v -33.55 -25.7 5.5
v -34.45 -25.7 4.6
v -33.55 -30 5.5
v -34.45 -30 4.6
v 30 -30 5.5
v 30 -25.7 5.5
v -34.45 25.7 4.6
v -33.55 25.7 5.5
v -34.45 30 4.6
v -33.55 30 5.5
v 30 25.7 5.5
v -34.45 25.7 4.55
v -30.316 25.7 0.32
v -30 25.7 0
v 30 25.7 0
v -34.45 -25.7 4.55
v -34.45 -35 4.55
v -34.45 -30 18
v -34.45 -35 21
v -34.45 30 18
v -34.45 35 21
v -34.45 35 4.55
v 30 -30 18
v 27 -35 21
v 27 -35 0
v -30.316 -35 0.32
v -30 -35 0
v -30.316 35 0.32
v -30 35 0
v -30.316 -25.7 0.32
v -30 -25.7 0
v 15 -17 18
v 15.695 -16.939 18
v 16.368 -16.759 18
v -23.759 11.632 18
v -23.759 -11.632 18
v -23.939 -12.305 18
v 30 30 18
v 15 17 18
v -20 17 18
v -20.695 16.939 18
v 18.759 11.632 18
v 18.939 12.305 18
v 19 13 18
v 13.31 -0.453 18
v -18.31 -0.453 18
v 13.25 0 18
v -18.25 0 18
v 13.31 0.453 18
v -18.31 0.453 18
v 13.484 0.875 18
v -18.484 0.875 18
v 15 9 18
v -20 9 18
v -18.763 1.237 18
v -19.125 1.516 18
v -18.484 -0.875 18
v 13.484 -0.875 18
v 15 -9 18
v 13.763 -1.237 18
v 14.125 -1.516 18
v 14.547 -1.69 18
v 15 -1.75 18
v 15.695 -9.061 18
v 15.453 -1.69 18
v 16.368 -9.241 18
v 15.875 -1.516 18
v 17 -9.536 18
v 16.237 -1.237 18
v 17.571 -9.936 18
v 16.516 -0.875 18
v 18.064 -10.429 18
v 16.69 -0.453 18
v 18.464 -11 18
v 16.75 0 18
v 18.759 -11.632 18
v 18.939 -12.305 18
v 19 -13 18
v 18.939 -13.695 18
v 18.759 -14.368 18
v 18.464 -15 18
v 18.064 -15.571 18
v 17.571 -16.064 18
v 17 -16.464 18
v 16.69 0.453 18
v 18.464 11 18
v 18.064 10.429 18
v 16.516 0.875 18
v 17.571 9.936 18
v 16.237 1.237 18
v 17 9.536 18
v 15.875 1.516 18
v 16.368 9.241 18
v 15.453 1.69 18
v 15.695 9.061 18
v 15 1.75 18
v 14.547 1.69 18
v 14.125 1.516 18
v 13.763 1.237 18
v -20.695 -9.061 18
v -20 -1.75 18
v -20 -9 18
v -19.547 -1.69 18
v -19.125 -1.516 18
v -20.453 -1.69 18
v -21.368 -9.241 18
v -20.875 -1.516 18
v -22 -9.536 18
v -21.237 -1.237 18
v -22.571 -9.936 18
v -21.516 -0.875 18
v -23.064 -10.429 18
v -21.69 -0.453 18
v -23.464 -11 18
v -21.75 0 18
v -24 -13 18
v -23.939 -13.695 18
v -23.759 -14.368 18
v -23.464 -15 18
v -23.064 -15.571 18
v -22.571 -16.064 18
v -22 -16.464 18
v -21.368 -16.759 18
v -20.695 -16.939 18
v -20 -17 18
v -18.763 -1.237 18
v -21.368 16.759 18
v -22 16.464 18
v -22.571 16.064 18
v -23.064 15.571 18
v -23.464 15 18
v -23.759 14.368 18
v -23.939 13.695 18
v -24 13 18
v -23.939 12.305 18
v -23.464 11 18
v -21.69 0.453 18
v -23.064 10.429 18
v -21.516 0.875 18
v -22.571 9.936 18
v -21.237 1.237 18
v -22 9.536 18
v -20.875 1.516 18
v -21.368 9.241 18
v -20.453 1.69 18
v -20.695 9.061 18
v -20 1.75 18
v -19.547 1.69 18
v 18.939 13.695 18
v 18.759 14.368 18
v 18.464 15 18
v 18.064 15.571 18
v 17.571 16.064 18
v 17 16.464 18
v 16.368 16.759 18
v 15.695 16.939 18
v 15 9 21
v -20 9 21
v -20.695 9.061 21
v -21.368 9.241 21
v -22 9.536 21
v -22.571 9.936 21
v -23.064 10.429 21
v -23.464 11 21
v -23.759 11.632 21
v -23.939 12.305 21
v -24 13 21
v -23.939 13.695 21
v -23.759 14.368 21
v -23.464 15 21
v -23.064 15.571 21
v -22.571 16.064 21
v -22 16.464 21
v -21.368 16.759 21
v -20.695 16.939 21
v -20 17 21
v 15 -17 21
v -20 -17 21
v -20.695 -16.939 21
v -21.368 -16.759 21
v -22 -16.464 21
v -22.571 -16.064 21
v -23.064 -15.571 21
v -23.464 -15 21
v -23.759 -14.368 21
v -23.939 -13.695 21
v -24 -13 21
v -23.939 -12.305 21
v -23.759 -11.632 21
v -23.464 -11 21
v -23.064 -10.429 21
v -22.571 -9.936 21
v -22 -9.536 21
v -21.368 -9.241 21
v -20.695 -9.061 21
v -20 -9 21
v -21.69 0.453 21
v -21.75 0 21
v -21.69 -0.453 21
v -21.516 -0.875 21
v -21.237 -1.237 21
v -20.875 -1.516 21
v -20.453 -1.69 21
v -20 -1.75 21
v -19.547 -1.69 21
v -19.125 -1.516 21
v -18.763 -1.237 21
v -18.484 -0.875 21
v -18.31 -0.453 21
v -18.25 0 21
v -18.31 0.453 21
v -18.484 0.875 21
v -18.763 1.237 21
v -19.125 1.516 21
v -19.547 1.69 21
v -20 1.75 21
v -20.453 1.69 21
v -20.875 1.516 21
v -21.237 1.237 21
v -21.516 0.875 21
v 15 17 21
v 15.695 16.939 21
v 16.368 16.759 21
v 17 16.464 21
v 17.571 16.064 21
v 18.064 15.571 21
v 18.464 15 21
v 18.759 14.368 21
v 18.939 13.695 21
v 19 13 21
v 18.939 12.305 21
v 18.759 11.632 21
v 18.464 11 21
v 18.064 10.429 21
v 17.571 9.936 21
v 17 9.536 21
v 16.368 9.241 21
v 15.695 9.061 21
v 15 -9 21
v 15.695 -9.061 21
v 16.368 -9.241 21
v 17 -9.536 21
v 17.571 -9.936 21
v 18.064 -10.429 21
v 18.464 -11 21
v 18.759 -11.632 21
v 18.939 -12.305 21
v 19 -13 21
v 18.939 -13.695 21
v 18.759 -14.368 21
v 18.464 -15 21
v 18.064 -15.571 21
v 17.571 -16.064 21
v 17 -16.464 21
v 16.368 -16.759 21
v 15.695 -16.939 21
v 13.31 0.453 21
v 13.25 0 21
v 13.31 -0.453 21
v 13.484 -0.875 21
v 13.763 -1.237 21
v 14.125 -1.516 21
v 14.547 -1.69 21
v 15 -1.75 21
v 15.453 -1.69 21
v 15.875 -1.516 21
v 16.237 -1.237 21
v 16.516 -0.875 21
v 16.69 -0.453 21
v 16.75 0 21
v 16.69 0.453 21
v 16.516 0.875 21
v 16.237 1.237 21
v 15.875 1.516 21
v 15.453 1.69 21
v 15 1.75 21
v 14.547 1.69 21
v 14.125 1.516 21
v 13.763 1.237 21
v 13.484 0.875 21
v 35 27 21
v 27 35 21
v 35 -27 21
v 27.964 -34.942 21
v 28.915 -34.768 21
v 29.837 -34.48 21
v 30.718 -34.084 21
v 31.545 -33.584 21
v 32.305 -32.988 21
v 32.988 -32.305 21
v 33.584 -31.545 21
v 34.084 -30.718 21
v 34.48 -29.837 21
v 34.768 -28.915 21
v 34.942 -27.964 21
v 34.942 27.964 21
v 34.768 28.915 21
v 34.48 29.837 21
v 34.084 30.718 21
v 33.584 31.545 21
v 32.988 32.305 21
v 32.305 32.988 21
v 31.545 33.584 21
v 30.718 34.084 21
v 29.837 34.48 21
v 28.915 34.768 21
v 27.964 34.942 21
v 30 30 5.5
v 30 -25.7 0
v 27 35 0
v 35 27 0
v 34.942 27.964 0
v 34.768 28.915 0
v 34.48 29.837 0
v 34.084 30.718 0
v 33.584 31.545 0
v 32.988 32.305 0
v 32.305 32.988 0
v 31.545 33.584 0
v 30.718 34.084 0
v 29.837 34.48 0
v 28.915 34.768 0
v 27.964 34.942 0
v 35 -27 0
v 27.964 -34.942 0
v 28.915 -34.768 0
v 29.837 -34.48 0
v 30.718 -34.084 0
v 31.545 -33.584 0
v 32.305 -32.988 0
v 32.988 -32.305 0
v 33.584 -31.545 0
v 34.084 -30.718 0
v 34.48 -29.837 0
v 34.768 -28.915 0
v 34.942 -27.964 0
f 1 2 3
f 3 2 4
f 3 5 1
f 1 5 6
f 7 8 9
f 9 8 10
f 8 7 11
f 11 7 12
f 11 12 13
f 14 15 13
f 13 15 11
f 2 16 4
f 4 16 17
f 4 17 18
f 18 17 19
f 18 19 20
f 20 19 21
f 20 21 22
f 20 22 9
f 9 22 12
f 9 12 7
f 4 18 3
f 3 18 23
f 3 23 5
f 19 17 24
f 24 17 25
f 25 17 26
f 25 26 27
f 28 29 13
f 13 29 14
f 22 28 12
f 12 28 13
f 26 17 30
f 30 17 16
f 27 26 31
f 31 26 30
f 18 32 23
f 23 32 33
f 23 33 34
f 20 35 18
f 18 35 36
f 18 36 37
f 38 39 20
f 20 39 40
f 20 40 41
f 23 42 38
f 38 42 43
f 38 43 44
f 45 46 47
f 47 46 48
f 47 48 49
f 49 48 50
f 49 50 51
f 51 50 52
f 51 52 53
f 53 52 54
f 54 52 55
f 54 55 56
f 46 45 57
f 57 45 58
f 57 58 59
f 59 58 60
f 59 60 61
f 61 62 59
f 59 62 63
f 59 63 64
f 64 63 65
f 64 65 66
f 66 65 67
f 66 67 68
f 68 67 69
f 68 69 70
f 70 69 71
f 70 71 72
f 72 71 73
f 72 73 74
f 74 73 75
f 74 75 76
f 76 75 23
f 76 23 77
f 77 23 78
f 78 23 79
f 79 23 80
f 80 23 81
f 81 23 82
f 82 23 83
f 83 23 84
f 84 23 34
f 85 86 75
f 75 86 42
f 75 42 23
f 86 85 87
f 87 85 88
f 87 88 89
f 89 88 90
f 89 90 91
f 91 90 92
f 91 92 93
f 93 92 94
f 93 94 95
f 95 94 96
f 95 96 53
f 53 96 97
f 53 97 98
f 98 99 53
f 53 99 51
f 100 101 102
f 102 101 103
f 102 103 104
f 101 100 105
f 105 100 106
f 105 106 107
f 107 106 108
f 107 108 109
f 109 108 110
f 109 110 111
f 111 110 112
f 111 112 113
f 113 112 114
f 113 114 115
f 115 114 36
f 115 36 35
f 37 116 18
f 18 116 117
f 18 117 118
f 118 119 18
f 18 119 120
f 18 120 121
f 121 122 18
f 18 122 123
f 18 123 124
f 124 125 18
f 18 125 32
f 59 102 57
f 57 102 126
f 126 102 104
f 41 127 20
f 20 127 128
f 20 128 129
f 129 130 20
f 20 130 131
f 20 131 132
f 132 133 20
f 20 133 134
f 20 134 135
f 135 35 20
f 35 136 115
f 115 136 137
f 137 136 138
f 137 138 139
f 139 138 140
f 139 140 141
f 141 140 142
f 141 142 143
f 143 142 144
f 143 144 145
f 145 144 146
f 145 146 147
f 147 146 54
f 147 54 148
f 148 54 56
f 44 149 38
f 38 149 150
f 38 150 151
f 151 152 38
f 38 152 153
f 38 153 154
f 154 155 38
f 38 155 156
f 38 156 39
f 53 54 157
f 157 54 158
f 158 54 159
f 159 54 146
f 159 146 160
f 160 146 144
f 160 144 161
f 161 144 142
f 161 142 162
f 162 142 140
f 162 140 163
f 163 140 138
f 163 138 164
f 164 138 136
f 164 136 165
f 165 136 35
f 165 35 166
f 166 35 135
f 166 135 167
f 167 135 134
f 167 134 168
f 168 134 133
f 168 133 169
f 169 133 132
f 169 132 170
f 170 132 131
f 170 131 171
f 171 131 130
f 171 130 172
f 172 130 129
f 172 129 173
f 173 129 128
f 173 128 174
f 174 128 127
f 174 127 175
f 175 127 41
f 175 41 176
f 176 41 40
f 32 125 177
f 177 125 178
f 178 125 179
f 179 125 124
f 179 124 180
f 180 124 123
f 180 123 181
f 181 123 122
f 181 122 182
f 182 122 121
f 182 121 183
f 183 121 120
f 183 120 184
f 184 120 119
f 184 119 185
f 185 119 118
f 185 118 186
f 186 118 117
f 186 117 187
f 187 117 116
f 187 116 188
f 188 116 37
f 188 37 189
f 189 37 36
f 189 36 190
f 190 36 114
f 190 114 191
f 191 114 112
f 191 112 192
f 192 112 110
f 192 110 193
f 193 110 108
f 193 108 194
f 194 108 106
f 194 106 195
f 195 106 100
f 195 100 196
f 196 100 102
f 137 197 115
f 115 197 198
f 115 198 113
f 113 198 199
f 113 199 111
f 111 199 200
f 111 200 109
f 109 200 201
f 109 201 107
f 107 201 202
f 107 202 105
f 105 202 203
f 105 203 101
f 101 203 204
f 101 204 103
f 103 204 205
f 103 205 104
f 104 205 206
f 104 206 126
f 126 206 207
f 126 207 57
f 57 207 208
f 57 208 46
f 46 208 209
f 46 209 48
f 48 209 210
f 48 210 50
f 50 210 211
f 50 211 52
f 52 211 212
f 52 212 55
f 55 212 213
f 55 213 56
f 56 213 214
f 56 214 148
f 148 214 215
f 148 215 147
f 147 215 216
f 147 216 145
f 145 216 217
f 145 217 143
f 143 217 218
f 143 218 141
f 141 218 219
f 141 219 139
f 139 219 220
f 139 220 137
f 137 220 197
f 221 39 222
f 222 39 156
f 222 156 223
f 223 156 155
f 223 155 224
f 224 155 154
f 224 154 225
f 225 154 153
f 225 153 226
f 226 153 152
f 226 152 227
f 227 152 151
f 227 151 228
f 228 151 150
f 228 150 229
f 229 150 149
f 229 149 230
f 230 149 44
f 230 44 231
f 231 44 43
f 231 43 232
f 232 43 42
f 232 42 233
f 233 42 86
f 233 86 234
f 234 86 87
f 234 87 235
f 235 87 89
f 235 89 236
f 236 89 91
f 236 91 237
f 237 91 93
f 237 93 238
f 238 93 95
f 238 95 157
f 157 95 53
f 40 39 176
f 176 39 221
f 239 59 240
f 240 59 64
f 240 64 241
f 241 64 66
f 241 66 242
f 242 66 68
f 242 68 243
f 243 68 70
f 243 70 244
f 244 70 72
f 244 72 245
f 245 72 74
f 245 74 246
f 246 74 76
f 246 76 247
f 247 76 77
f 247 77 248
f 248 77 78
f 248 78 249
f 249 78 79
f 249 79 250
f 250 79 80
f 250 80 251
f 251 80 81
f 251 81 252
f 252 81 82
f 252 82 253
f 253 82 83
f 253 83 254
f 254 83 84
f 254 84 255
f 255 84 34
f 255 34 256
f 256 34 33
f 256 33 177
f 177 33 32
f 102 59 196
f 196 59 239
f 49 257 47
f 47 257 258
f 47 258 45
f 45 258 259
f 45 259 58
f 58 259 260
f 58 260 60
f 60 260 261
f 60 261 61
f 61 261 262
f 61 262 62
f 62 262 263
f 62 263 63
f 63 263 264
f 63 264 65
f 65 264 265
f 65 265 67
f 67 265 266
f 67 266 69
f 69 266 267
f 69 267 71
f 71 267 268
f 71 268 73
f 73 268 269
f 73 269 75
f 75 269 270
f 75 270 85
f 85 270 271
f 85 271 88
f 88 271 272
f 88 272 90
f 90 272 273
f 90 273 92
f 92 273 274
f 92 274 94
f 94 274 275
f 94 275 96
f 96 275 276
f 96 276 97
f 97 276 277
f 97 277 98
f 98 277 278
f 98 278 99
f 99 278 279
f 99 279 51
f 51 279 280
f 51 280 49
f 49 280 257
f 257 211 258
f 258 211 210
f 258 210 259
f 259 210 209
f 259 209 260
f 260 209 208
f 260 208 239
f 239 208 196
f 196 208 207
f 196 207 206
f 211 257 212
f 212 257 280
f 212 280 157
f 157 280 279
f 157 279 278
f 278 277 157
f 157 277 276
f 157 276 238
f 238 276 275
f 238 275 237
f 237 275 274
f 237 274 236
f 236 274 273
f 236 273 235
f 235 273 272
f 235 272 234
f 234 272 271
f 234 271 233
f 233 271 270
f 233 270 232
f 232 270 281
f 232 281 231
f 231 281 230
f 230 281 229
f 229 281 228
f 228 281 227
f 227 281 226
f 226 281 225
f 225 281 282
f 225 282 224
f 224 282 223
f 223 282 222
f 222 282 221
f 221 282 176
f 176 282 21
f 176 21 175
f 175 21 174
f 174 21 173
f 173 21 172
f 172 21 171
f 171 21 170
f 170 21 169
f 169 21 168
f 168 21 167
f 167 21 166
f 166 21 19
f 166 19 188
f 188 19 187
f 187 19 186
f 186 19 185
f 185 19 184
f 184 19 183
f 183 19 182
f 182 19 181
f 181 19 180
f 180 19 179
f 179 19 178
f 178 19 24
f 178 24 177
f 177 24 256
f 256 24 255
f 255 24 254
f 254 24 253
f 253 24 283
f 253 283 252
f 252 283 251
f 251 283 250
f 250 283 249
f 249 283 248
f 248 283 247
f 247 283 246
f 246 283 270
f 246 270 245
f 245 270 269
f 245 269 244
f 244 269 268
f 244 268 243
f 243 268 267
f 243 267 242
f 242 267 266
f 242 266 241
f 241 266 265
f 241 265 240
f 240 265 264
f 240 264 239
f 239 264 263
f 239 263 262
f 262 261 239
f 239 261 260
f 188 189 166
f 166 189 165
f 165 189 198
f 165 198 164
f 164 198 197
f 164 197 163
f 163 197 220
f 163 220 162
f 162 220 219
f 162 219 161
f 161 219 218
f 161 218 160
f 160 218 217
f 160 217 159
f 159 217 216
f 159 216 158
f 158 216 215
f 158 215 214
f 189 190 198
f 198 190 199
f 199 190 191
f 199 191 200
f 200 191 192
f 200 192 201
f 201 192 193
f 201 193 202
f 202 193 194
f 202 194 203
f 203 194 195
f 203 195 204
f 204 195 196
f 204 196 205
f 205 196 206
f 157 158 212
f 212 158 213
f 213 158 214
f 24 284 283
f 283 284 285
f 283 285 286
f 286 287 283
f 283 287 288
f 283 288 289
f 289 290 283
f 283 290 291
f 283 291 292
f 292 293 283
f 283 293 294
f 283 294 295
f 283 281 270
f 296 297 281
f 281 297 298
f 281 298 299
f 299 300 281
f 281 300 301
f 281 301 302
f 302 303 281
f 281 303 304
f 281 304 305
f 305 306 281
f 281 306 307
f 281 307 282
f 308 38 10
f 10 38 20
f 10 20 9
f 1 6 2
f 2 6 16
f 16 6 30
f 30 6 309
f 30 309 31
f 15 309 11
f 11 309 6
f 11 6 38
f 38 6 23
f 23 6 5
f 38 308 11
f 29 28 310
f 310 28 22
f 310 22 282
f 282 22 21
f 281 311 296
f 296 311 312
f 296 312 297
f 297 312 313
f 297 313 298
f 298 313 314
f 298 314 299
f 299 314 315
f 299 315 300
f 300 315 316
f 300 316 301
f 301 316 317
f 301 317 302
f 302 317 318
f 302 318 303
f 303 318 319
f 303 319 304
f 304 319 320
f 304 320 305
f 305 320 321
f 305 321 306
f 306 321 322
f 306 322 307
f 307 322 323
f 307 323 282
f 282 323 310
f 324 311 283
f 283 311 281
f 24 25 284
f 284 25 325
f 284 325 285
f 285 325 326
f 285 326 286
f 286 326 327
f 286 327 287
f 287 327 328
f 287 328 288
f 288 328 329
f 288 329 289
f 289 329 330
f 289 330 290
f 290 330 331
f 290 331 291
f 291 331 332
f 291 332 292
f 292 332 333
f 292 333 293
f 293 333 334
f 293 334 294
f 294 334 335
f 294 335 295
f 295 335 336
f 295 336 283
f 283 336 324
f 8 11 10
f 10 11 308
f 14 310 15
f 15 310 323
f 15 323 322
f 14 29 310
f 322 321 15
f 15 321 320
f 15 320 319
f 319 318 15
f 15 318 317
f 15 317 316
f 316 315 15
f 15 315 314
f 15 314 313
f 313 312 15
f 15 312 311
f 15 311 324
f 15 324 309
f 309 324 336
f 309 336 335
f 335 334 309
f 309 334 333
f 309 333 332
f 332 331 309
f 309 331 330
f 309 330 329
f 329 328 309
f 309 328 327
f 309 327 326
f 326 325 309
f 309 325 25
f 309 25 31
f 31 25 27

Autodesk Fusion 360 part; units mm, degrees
sketch "Sketch1" plane through (0, 0, 0) normal (0, 0, 1) x (1, 0, 0)
  line L0 (30, 25.7) -> (-30, 25.7)
  line L1 (-30, 25.7) -> (-30, -25.7)
  line L2 (-30, -25.7) -> (30, -25.7)
  line L3 (30, -25.7) -> (30, 25.7)
  line L4 (30, -30) -> (-30, -30)
  line L5 (-30, -35) -> (-30, 35)
  line L6 (-30, 30) -> (30, 30)
  line L7 (30, 30) -> (30, -30)
  line L8 (-30, 35) -> (27, 35)
  line L9 (35, 27) -> (35, -27)
  line L10 (-30, -35) -> (27, -35)
  arc A0 (35, 27) -> (27, 35) centre (27, 27) ccw
  arc A1 (27, -35) -> (35, -27) centre (27, -27) ccw
  circle A2 centre (-20, 0) radius 1.75
  circle A3 centre (15, 0) radius 1.75
  line L11 (-20, 9) -> (15, 9)
  arc A4 (15, 9) -> (15, 17) centre (15, 13) ccw
  line L12 (15, 17) -> (-20, 17)
  arc A5 (-20, 17) -> (-20, 9) centre (-20, 13) ccw
  line L13 (-20, 13) -> (15, 13) construction
  line L14 (1.75, 0) -> (22.5, 0)
  line L15 (-20, -9) -> (15, -9)
  arc A6 (-20, -9) -> (-20, -17) centre (-20, -13) ccw
  line L16 (15, -17) -> (-20, -17)
  arc A7 (15, -17) -> (15, -9) centre (15, -13) ccw
  dimension "d1" = 60
  dimension "d2" = 51.4
  dimension "d3" = 60
  dimension "d6" = 8
  dimension "d15" = 3.5
  dimension "d16" = 3.5
extrude "Extrude1" add sketch "Sketch1" along normal blind 5.5 contours L3 L4 L5 L6 L7 L8 L9 L10 A0 A1 | L0 L5 L6 L7 | L2 L4 L5 L7
extrude "Extrude2" add sketch "Sketch1" along normal blind 18 contours L3 L4 L5 L6 L7 L8 L9 L10 A0 A1
extrude "Extrude3" add sketch "Sketch1" along normal blind 21 and the other way blind -18
sketch "Sketch2" plane through (0, -35, 0) normal (0, -1, 0) x (1, 0, 0)
  line L0 (-30, 0) -> (27, 0)
  line L1 (27, 0) -> (27, 21)
  line L2 (27, 21) -> (-30, 21)
  line L3 (-30, 21) -> (-30, 0)
  line L4 (-30, 0) -> (-34.45, 0)
  line L5 (-34.45, 0) -> (-34.45, 4.55)
  line L6 (-30, 0) -> (-30.316, 0.3196)
  line L7 (-30.316, 0.3196) -> (-34.45, 4.55)
  line L8 (-34.45, 4.55) -> (-34.45, 21)
  line L9 (-34.45, 21) -> (-30, 21)
  line L10 (-30, 0) -> (-30, 5.5)
  line L11 (-30, 5.5) -> (-34.45, 5.5)
  dimension "d17" = 4.45
  dimension "d18" = 4.55
  dimension "d25" = 5.5
extrude "Extrude4" add sketch "Sketch2" against normal blind 5 contours L3 L6 L7 L8 L10 L11 | L3 L8 L9 L11
extrude "Extrude5" add sketch "Sketch2" along normal blind -70 and the other way blind 65 contours L3 L6 L7 L8 L10 L11 | L3 L8 L9 L11
extrude "Extrude6" add sketch "Sketch2" against normal blind 9.3 contours L3 L6 L7 L8 L10 L11
extrude "Extrude7" add sketch "Sketch2" along normal blind -65 and the other way blind 60.7 contours L3 L6 L7 L8 L10 L11
extrude "Extrude8" add 1 faces at (-30, -10, 19) along direction (-1, 0, 0) blind 4.45
chamfer "Chamfer1" distance 0.9 angle 45 2 edges at (-34.45, 27.85, 5.5) (-34.45, -27.85, 5.5)
